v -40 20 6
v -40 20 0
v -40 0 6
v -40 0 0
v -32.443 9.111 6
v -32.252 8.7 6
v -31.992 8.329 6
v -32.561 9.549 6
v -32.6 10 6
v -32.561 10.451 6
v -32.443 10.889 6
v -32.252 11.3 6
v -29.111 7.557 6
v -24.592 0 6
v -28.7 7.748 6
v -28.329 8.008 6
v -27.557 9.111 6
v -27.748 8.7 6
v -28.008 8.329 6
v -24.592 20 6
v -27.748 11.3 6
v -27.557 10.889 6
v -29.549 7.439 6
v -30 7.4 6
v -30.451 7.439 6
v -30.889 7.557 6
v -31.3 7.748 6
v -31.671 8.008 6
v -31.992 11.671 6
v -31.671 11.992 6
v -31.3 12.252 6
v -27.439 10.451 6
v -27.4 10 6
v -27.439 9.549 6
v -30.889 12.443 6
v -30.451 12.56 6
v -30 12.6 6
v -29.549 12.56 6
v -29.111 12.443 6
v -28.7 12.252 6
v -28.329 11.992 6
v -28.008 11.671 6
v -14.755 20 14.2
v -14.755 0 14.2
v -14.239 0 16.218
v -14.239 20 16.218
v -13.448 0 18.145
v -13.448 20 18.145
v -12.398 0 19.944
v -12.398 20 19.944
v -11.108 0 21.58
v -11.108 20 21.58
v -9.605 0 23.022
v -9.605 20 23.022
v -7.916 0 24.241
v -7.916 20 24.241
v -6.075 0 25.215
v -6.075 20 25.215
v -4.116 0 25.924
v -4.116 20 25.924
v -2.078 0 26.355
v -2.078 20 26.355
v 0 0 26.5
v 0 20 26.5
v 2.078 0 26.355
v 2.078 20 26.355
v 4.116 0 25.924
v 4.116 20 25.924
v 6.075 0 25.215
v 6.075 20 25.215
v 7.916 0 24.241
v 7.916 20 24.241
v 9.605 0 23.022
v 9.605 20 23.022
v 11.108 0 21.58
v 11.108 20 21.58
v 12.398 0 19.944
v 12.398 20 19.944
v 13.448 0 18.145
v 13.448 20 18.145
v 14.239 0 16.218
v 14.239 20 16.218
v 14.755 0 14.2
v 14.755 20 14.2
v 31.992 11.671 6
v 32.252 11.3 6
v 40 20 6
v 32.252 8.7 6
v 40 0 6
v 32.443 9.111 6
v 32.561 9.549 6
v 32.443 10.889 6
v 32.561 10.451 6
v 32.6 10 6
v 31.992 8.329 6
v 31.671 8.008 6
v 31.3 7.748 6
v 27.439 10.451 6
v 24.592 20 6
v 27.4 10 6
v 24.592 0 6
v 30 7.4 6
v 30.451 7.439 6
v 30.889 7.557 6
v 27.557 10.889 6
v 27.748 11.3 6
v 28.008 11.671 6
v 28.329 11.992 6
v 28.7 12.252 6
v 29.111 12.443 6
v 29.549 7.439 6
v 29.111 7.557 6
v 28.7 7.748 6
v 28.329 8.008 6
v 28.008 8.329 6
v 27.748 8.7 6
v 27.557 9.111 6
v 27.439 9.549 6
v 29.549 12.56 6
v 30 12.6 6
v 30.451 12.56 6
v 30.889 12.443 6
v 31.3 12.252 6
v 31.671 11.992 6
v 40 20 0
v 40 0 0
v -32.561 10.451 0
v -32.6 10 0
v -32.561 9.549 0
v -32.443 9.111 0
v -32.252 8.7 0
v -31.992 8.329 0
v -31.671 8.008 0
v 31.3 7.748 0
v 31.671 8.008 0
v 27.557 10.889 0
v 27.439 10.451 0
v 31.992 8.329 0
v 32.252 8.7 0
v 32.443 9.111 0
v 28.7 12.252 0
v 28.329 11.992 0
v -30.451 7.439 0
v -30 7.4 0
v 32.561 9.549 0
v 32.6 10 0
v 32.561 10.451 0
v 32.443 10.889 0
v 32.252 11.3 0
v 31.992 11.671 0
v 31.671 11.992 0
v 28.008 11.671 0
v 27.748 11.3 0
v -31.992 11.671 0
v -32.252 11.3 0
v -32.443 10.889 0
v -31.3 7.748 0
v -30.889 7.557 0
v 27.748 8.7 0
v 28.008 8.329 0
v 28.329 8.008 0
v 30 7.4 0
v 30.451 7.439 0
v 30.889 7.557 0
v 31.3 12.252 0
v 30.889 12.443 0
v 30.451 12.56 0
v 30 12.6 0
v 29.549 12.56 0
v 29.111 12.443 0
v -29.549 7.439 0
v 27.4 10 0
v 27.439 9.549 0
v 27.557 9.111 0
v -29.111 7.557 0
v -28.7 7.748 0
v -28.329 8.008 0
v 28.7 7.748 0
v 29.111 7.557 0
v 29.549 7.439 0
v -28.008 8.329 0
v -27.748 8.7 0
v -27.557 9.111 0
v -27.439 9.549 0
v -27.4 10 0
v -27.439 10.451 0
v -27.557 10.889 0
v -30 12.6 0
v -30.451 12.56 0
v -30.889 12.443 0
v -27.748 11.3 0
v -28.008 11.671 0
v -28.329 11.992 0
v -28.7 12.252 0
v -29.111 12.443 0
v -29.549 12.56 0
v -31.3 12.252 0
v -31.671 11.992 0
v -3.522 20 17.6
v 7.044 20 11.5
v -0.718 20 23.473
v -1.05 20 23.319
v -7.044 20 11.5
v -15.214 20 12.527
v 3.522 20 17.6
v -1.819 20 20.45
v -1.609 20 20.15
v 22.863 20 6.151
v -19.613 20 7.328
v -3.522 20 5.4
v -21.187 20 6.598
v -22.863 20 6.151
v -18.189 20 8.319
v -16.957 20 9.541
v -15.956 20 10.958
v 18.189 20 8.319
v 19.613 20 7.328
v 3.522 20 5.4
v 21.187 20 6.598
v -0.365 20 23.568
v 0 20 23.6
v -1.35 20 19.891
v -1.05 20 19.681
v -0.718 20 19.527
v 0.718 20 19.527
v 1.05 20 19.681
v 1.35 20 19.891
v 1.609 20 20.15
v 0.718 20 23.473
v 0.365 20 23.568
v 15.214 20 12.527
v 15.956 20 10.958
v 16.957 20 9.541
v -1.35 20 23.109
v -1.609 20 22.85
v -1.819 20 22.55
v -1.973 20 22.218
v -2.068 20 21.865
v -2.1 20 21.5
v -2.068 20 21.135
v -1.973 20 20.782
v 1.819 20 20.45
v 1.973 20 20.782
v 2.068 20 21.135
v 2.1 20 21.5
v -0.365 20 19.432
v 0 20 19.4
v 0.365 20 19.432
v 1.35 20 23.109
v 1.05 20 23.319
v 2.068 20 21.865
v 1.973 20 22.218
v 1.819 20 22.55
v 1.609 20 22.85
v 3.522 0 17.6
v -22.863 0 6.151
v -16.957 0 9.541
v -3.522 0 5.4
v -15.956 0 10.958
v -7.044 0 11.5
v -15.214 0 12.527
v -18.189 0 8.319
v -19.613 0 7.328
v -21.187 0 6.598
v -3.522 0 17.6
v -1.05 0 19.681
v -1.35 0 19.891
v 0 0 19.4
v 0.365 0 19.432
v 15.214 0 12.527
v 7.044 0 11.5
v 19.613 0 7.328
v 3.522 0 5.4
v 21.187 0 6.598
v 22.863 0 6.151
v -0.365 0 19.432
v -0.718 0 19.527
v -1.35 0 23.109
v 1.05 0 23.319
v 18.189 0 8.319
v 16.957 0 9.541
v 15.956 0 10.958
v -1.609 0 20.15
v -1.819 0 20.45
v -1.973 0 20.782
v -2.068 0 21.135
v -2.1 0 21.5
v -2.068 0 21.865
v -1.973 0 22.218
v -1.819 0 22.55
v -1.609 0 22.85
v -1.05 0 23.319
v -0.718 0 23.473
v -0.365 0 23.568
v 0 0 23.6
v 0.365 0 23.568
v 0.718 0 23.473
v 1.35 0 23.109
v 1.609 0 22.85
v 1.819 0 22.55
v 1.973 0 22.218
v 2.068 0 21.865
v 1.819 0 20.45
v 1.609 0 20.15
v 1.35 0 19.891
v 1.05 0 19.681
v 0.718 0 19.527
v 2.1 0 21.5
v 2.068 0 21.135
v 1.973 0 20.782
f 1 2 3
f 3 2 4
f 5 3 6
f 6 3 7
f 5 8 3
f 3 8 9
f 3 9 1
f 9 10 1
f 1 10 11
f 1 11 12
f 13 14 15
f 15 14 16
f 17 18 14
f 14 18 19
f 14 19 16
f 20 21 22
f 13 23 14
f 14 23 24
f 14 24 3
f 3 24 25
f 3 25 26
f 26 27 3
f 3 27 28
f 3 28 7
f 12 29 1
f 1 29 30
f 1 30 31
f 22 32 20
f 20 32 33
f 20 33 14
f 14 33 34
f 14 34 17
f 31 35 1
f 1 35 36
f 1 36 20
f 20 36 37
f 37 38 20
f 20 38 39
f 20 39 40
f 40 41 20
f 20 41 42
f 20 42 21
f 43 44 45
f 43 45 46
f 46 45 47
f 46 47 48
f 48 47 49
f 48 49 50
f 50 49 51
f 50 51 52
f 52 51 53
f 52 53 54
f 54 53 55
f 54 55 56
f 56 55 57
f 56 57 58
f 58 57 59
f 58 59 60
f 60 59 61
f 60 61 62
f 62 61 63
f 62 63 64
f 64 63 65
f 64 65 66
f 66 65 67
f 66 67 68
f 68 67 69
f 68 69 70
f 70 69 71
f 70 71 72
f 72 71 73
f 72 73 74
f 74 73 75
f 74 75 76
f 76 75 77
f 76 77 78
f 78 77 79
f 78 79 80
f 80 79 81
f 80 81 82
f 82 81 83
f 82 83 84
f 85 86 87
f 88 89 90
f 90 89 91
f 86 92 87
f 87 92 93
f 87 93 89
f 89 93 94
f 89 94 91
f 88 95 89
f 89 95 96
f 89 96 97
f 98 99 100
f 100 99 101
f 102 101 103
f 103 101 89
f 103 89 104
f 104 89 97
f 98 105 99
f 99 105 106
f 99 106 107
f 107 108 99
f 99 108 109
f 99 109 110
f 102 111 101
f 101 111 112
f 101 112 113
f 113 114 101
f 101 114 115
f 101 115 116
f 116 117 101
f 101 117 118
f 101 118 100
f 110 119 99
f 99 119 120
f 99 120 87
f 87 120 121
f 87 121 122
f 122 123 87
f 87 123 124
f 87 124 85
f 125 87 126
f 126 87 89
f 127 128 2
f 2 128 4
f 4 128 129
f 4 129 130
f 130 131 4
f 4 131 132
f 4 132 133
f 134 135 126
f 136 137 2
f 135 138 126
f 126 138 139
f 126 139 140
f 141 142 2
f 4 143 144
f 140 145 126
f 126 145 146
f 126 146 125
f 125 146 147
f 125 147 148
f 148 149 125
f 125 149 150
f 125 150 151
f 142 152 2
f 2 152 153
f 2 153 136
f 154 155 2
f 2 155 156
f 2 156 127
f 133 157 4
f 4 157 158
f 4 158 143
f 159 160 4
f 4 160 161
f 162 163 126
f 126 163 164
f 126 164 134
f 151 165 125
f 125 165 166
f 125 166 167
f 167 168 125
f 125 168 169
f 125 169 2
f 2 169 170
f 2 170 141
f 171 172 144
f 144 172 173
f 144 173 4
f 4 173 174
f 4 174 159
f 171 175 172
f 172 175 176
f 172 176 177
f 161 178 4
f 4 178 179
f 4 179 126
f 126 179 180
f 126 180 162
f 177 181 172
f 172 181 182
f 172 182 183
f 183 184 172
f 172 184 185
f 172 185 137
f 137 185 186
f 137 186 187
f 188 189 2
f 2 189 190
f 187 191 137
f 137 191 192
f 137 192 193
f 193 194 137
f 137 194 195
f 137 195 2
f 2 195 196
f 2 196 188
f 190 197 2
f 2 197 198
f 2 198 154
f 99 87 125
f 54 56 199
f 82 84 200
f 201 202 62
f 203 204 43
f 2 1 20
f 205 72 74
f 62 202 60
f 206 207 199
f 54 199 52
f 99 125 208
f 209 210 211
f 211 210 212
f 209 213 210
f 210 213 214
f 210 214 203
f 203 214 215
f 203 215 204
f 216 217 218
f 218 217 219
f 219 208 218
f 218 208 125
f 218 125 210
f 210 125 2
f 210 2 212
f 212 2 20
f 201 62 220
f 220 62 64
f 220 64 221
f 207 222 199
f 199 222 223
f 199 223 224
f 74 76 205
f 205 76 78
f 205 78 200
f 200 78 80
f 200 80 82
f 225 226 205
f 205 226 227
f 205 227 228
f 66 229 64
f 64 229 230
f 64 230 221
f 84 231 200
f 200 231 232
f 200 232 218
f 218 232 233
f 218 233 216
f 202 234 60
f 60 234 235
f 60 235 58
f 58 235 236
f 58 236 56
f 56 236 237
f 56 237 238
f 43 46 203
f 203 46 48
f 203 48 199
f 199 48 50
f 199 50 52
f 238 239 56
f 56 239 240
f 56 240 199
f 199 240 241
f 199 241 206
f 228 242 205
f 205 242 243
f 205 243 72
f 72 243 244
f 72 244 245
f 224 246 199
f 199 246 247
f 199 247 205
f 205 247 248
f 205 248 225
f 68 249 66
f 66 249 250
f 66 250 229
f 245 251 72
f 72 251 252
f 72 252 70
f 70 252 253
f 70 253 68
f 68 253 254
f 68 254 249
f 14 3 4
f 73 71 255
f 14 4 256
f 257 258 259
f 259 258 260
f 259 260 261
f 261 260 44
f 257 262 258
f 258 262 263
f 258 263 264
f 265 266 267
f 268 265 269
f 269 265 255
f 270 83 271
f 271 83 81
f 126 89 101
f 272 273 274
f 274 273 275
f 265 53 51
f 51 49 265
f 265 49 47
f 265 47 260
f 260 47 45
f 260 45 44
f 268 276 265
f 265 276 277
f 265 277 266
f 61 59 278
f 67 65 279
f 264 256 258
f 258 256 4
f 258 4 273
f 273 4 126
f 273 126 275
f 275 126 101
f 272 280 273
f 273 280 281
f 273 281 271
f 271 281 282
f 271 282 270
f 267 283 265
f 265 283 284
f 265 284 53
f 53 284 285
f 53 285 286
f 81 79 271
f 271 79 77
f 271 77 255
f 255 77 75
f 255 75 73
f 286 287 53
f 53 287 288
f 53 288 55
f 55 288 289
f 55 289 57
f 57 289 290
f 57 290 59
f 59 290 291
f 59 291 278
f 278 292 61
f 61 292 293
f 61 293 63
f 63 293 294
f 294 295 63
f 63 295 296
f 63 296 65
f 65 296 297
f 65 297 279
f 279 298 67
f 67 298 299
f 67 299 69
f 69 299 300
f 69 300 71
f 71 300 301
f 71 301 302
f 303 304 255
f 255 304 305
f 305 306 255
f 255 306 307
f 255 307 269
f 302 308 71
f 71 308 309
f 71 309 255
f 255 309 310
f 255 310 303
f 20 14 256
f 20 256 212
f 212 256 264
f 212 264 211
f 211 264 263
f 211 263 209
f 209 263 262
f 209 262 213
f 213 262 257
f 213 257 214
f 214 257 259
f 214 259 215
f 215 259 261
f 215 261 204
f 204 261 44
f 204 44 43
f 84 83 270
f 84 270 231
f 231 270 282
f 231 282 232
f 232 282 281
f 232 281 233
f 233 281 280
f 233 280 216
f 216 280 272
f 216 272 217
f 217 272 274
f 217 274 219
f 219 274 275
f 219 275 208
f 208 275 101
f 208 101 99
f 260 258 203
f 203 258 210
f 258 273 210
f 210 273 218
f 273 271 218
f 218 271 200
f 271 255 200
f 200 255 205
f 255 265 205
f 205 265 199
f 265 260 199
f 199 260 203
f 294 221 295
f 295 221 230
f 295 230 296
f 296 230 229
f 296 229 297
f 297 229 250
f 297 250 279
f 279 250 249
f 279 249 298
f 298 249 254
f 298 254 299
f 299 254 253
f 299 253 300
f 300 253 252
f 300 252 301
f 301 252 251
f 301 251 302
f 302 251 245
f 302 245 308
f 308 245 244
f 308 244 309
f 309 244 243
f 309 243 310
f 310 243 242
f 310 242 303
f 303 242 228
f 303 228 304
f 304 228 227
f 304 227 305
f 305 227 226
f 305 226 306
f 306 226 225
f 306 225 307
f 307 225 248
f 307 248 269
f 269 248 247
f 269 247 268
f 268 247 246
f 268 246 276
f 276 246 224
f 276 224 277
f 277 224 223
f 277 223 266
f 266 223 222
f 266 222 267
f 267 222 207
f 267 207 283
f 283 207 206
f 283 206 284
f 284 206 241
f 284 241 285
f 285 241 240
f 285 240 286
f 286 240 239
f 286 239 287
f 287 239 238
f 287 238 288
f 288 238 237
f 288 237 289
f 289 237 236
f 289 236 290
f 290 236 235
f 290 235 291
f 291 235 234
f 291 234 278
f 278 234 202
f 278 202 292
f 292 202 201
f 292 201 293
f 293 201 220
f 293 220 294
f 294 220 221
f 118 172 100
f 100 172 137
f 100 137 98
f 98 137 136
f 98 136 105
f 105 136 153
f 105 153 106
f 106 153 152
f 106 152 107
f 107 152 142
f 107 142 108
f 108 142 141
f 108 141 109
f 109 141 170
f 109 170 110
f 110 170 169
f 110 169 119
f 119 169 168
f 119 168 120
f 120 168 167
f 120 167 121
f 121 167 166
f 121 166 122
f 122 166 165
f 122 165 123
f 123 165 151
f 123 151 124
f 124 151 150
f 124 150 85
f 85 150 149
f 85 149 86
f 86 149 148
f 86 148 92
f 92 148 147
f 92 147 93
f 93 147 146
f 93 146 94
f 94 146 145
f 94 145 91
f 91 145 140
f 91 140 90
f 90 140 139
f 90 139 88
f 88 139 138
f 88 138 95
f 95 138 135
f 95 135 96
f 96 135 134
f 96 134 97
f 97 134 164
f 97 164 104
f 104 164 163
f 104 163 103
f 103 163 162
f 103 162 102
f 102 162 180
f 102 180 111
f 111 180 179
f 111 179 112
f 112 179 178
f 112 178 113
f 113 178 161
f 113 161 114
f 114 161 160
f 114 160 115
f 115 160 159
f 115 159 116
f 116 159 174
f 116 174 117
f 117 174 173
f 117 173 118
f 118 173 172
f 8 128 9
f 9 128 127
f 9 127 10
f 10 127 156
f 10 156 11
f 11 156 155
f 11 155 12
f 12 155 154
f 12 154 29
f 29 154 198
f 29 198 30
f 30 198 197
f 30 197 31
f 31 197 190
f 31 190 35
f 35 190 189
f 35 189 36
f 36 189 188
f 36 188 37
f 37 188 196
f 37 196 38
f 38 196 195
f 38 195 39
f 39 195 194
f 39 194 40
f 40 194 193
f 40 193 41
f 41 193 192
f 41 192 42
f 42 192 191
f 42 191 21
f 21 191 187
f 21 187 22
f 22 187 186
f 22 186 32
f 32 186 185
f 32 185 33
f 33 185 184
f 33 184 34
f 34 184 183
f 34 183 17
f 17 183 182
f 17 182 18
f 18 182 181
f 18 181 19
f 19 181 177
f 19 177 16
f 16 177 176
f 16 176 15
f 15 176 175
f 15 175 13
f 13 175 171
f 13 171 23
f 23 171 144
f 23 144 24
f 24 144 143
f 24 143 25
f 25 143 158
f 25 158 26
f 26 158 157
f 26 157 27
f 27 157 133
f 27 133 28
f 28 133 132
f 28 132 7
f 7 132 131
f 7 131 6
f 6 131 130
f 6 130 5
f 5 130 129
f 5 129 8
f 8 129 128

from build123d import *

# Parameters (mm, degrees)
BOSS_EXTRUDE1_DEPTH = 20
FILLET1_R           = 10
CUT_EXTRUDE1_DEPTH  = 52.983170353
SKETCH3_R           = 2.1
CUT_EXTRUDE2_DEPTH  = 52.983170353
SKETCH4_R           = 2.6
CUT_EXTRUDE3_DEPTH  = 52.983170353


with BuildPart() as part:
    # Sketch1 → Boss-Extrude1 (new body)
    with BuildSketch(Plane(origin=(0, 0, 0), x_dir=(1, 0, 0), z_dir=(0, 1, 0))):
        with BuildLine():
            Line((0, 0), (40, 0))
            Line((40, 0), (40, -6))
            Line((40, -6), (13.955285737, -6))
            ThreePointArc((13.955285737, -6), (0, -26.5), (-13.955285737, -6))
            Line((-13.955285737, -6), (-40, -6))
            Line((-40, -6), (-40, 0))
            Line((-40, 0), (0, 0))
        make_face()
    extrude(amount=BOSS_EXTRUDE1_DEPTH)

    # Fillet1
    fillet1_edges = [part.edges().sort_by_distance(p)[0] for p in [
        (13.955285737, 10, 6),
        (-13.955285737, 10, 6),
    ]]
    fillet(fillet1_edges, radius=FILLET1_R)

    # Sketch2 → Cut-Extrude1 (cut, through all)
    with BuildSketch(Plane(origin=(0, 20, 0), x_dir=(1, 0, 0), z_dir=(0, 1, 0))):
        Polygon((-7.043673284, -11.5), (-3.521836642, -17.6), (3.521836642, -17.6), (7.043673284, -11.5), (3.521836642, -5.4), (-3.521836642, -5.4), align=None)
    extrude(amount=-CUT_EXTRUDE1_DEPTH, mode=Mode.SUBTRACT)

    # Sketch3 → Cut-Extrude2 (cut, through all)
    with BuildSketch(Plane(origin=(0, 20, 0), x_dir=(1, 0, 0), z_dir=(0, 1, 0))):
        with Locations(Location((0, -21.5, 0), (0, 0, 270))):
            Circle(SKETCH3_R)
    extrude(amount=-CUT_EXTRUDE2_DEPTH, mode=Mode.SUBTRACT)

    # Sketch4 → Cut-Extrude3 (cut, through all)
    with BuildSketch(Plane(origin=(0, 0, 0), x_dir=(-1, 0, 0), z_dir=(0, 0, -1))):
        with Locations((-30, 10)):
            Circle(SKETCH4_R)
        with Locations((30, 10)):
            Circle(SKETCH4_R)
    extrude(amount=-CUT_EXTRUDE3_DEPTH, mode=Mode.SUBTRACT)


solid = part.part
